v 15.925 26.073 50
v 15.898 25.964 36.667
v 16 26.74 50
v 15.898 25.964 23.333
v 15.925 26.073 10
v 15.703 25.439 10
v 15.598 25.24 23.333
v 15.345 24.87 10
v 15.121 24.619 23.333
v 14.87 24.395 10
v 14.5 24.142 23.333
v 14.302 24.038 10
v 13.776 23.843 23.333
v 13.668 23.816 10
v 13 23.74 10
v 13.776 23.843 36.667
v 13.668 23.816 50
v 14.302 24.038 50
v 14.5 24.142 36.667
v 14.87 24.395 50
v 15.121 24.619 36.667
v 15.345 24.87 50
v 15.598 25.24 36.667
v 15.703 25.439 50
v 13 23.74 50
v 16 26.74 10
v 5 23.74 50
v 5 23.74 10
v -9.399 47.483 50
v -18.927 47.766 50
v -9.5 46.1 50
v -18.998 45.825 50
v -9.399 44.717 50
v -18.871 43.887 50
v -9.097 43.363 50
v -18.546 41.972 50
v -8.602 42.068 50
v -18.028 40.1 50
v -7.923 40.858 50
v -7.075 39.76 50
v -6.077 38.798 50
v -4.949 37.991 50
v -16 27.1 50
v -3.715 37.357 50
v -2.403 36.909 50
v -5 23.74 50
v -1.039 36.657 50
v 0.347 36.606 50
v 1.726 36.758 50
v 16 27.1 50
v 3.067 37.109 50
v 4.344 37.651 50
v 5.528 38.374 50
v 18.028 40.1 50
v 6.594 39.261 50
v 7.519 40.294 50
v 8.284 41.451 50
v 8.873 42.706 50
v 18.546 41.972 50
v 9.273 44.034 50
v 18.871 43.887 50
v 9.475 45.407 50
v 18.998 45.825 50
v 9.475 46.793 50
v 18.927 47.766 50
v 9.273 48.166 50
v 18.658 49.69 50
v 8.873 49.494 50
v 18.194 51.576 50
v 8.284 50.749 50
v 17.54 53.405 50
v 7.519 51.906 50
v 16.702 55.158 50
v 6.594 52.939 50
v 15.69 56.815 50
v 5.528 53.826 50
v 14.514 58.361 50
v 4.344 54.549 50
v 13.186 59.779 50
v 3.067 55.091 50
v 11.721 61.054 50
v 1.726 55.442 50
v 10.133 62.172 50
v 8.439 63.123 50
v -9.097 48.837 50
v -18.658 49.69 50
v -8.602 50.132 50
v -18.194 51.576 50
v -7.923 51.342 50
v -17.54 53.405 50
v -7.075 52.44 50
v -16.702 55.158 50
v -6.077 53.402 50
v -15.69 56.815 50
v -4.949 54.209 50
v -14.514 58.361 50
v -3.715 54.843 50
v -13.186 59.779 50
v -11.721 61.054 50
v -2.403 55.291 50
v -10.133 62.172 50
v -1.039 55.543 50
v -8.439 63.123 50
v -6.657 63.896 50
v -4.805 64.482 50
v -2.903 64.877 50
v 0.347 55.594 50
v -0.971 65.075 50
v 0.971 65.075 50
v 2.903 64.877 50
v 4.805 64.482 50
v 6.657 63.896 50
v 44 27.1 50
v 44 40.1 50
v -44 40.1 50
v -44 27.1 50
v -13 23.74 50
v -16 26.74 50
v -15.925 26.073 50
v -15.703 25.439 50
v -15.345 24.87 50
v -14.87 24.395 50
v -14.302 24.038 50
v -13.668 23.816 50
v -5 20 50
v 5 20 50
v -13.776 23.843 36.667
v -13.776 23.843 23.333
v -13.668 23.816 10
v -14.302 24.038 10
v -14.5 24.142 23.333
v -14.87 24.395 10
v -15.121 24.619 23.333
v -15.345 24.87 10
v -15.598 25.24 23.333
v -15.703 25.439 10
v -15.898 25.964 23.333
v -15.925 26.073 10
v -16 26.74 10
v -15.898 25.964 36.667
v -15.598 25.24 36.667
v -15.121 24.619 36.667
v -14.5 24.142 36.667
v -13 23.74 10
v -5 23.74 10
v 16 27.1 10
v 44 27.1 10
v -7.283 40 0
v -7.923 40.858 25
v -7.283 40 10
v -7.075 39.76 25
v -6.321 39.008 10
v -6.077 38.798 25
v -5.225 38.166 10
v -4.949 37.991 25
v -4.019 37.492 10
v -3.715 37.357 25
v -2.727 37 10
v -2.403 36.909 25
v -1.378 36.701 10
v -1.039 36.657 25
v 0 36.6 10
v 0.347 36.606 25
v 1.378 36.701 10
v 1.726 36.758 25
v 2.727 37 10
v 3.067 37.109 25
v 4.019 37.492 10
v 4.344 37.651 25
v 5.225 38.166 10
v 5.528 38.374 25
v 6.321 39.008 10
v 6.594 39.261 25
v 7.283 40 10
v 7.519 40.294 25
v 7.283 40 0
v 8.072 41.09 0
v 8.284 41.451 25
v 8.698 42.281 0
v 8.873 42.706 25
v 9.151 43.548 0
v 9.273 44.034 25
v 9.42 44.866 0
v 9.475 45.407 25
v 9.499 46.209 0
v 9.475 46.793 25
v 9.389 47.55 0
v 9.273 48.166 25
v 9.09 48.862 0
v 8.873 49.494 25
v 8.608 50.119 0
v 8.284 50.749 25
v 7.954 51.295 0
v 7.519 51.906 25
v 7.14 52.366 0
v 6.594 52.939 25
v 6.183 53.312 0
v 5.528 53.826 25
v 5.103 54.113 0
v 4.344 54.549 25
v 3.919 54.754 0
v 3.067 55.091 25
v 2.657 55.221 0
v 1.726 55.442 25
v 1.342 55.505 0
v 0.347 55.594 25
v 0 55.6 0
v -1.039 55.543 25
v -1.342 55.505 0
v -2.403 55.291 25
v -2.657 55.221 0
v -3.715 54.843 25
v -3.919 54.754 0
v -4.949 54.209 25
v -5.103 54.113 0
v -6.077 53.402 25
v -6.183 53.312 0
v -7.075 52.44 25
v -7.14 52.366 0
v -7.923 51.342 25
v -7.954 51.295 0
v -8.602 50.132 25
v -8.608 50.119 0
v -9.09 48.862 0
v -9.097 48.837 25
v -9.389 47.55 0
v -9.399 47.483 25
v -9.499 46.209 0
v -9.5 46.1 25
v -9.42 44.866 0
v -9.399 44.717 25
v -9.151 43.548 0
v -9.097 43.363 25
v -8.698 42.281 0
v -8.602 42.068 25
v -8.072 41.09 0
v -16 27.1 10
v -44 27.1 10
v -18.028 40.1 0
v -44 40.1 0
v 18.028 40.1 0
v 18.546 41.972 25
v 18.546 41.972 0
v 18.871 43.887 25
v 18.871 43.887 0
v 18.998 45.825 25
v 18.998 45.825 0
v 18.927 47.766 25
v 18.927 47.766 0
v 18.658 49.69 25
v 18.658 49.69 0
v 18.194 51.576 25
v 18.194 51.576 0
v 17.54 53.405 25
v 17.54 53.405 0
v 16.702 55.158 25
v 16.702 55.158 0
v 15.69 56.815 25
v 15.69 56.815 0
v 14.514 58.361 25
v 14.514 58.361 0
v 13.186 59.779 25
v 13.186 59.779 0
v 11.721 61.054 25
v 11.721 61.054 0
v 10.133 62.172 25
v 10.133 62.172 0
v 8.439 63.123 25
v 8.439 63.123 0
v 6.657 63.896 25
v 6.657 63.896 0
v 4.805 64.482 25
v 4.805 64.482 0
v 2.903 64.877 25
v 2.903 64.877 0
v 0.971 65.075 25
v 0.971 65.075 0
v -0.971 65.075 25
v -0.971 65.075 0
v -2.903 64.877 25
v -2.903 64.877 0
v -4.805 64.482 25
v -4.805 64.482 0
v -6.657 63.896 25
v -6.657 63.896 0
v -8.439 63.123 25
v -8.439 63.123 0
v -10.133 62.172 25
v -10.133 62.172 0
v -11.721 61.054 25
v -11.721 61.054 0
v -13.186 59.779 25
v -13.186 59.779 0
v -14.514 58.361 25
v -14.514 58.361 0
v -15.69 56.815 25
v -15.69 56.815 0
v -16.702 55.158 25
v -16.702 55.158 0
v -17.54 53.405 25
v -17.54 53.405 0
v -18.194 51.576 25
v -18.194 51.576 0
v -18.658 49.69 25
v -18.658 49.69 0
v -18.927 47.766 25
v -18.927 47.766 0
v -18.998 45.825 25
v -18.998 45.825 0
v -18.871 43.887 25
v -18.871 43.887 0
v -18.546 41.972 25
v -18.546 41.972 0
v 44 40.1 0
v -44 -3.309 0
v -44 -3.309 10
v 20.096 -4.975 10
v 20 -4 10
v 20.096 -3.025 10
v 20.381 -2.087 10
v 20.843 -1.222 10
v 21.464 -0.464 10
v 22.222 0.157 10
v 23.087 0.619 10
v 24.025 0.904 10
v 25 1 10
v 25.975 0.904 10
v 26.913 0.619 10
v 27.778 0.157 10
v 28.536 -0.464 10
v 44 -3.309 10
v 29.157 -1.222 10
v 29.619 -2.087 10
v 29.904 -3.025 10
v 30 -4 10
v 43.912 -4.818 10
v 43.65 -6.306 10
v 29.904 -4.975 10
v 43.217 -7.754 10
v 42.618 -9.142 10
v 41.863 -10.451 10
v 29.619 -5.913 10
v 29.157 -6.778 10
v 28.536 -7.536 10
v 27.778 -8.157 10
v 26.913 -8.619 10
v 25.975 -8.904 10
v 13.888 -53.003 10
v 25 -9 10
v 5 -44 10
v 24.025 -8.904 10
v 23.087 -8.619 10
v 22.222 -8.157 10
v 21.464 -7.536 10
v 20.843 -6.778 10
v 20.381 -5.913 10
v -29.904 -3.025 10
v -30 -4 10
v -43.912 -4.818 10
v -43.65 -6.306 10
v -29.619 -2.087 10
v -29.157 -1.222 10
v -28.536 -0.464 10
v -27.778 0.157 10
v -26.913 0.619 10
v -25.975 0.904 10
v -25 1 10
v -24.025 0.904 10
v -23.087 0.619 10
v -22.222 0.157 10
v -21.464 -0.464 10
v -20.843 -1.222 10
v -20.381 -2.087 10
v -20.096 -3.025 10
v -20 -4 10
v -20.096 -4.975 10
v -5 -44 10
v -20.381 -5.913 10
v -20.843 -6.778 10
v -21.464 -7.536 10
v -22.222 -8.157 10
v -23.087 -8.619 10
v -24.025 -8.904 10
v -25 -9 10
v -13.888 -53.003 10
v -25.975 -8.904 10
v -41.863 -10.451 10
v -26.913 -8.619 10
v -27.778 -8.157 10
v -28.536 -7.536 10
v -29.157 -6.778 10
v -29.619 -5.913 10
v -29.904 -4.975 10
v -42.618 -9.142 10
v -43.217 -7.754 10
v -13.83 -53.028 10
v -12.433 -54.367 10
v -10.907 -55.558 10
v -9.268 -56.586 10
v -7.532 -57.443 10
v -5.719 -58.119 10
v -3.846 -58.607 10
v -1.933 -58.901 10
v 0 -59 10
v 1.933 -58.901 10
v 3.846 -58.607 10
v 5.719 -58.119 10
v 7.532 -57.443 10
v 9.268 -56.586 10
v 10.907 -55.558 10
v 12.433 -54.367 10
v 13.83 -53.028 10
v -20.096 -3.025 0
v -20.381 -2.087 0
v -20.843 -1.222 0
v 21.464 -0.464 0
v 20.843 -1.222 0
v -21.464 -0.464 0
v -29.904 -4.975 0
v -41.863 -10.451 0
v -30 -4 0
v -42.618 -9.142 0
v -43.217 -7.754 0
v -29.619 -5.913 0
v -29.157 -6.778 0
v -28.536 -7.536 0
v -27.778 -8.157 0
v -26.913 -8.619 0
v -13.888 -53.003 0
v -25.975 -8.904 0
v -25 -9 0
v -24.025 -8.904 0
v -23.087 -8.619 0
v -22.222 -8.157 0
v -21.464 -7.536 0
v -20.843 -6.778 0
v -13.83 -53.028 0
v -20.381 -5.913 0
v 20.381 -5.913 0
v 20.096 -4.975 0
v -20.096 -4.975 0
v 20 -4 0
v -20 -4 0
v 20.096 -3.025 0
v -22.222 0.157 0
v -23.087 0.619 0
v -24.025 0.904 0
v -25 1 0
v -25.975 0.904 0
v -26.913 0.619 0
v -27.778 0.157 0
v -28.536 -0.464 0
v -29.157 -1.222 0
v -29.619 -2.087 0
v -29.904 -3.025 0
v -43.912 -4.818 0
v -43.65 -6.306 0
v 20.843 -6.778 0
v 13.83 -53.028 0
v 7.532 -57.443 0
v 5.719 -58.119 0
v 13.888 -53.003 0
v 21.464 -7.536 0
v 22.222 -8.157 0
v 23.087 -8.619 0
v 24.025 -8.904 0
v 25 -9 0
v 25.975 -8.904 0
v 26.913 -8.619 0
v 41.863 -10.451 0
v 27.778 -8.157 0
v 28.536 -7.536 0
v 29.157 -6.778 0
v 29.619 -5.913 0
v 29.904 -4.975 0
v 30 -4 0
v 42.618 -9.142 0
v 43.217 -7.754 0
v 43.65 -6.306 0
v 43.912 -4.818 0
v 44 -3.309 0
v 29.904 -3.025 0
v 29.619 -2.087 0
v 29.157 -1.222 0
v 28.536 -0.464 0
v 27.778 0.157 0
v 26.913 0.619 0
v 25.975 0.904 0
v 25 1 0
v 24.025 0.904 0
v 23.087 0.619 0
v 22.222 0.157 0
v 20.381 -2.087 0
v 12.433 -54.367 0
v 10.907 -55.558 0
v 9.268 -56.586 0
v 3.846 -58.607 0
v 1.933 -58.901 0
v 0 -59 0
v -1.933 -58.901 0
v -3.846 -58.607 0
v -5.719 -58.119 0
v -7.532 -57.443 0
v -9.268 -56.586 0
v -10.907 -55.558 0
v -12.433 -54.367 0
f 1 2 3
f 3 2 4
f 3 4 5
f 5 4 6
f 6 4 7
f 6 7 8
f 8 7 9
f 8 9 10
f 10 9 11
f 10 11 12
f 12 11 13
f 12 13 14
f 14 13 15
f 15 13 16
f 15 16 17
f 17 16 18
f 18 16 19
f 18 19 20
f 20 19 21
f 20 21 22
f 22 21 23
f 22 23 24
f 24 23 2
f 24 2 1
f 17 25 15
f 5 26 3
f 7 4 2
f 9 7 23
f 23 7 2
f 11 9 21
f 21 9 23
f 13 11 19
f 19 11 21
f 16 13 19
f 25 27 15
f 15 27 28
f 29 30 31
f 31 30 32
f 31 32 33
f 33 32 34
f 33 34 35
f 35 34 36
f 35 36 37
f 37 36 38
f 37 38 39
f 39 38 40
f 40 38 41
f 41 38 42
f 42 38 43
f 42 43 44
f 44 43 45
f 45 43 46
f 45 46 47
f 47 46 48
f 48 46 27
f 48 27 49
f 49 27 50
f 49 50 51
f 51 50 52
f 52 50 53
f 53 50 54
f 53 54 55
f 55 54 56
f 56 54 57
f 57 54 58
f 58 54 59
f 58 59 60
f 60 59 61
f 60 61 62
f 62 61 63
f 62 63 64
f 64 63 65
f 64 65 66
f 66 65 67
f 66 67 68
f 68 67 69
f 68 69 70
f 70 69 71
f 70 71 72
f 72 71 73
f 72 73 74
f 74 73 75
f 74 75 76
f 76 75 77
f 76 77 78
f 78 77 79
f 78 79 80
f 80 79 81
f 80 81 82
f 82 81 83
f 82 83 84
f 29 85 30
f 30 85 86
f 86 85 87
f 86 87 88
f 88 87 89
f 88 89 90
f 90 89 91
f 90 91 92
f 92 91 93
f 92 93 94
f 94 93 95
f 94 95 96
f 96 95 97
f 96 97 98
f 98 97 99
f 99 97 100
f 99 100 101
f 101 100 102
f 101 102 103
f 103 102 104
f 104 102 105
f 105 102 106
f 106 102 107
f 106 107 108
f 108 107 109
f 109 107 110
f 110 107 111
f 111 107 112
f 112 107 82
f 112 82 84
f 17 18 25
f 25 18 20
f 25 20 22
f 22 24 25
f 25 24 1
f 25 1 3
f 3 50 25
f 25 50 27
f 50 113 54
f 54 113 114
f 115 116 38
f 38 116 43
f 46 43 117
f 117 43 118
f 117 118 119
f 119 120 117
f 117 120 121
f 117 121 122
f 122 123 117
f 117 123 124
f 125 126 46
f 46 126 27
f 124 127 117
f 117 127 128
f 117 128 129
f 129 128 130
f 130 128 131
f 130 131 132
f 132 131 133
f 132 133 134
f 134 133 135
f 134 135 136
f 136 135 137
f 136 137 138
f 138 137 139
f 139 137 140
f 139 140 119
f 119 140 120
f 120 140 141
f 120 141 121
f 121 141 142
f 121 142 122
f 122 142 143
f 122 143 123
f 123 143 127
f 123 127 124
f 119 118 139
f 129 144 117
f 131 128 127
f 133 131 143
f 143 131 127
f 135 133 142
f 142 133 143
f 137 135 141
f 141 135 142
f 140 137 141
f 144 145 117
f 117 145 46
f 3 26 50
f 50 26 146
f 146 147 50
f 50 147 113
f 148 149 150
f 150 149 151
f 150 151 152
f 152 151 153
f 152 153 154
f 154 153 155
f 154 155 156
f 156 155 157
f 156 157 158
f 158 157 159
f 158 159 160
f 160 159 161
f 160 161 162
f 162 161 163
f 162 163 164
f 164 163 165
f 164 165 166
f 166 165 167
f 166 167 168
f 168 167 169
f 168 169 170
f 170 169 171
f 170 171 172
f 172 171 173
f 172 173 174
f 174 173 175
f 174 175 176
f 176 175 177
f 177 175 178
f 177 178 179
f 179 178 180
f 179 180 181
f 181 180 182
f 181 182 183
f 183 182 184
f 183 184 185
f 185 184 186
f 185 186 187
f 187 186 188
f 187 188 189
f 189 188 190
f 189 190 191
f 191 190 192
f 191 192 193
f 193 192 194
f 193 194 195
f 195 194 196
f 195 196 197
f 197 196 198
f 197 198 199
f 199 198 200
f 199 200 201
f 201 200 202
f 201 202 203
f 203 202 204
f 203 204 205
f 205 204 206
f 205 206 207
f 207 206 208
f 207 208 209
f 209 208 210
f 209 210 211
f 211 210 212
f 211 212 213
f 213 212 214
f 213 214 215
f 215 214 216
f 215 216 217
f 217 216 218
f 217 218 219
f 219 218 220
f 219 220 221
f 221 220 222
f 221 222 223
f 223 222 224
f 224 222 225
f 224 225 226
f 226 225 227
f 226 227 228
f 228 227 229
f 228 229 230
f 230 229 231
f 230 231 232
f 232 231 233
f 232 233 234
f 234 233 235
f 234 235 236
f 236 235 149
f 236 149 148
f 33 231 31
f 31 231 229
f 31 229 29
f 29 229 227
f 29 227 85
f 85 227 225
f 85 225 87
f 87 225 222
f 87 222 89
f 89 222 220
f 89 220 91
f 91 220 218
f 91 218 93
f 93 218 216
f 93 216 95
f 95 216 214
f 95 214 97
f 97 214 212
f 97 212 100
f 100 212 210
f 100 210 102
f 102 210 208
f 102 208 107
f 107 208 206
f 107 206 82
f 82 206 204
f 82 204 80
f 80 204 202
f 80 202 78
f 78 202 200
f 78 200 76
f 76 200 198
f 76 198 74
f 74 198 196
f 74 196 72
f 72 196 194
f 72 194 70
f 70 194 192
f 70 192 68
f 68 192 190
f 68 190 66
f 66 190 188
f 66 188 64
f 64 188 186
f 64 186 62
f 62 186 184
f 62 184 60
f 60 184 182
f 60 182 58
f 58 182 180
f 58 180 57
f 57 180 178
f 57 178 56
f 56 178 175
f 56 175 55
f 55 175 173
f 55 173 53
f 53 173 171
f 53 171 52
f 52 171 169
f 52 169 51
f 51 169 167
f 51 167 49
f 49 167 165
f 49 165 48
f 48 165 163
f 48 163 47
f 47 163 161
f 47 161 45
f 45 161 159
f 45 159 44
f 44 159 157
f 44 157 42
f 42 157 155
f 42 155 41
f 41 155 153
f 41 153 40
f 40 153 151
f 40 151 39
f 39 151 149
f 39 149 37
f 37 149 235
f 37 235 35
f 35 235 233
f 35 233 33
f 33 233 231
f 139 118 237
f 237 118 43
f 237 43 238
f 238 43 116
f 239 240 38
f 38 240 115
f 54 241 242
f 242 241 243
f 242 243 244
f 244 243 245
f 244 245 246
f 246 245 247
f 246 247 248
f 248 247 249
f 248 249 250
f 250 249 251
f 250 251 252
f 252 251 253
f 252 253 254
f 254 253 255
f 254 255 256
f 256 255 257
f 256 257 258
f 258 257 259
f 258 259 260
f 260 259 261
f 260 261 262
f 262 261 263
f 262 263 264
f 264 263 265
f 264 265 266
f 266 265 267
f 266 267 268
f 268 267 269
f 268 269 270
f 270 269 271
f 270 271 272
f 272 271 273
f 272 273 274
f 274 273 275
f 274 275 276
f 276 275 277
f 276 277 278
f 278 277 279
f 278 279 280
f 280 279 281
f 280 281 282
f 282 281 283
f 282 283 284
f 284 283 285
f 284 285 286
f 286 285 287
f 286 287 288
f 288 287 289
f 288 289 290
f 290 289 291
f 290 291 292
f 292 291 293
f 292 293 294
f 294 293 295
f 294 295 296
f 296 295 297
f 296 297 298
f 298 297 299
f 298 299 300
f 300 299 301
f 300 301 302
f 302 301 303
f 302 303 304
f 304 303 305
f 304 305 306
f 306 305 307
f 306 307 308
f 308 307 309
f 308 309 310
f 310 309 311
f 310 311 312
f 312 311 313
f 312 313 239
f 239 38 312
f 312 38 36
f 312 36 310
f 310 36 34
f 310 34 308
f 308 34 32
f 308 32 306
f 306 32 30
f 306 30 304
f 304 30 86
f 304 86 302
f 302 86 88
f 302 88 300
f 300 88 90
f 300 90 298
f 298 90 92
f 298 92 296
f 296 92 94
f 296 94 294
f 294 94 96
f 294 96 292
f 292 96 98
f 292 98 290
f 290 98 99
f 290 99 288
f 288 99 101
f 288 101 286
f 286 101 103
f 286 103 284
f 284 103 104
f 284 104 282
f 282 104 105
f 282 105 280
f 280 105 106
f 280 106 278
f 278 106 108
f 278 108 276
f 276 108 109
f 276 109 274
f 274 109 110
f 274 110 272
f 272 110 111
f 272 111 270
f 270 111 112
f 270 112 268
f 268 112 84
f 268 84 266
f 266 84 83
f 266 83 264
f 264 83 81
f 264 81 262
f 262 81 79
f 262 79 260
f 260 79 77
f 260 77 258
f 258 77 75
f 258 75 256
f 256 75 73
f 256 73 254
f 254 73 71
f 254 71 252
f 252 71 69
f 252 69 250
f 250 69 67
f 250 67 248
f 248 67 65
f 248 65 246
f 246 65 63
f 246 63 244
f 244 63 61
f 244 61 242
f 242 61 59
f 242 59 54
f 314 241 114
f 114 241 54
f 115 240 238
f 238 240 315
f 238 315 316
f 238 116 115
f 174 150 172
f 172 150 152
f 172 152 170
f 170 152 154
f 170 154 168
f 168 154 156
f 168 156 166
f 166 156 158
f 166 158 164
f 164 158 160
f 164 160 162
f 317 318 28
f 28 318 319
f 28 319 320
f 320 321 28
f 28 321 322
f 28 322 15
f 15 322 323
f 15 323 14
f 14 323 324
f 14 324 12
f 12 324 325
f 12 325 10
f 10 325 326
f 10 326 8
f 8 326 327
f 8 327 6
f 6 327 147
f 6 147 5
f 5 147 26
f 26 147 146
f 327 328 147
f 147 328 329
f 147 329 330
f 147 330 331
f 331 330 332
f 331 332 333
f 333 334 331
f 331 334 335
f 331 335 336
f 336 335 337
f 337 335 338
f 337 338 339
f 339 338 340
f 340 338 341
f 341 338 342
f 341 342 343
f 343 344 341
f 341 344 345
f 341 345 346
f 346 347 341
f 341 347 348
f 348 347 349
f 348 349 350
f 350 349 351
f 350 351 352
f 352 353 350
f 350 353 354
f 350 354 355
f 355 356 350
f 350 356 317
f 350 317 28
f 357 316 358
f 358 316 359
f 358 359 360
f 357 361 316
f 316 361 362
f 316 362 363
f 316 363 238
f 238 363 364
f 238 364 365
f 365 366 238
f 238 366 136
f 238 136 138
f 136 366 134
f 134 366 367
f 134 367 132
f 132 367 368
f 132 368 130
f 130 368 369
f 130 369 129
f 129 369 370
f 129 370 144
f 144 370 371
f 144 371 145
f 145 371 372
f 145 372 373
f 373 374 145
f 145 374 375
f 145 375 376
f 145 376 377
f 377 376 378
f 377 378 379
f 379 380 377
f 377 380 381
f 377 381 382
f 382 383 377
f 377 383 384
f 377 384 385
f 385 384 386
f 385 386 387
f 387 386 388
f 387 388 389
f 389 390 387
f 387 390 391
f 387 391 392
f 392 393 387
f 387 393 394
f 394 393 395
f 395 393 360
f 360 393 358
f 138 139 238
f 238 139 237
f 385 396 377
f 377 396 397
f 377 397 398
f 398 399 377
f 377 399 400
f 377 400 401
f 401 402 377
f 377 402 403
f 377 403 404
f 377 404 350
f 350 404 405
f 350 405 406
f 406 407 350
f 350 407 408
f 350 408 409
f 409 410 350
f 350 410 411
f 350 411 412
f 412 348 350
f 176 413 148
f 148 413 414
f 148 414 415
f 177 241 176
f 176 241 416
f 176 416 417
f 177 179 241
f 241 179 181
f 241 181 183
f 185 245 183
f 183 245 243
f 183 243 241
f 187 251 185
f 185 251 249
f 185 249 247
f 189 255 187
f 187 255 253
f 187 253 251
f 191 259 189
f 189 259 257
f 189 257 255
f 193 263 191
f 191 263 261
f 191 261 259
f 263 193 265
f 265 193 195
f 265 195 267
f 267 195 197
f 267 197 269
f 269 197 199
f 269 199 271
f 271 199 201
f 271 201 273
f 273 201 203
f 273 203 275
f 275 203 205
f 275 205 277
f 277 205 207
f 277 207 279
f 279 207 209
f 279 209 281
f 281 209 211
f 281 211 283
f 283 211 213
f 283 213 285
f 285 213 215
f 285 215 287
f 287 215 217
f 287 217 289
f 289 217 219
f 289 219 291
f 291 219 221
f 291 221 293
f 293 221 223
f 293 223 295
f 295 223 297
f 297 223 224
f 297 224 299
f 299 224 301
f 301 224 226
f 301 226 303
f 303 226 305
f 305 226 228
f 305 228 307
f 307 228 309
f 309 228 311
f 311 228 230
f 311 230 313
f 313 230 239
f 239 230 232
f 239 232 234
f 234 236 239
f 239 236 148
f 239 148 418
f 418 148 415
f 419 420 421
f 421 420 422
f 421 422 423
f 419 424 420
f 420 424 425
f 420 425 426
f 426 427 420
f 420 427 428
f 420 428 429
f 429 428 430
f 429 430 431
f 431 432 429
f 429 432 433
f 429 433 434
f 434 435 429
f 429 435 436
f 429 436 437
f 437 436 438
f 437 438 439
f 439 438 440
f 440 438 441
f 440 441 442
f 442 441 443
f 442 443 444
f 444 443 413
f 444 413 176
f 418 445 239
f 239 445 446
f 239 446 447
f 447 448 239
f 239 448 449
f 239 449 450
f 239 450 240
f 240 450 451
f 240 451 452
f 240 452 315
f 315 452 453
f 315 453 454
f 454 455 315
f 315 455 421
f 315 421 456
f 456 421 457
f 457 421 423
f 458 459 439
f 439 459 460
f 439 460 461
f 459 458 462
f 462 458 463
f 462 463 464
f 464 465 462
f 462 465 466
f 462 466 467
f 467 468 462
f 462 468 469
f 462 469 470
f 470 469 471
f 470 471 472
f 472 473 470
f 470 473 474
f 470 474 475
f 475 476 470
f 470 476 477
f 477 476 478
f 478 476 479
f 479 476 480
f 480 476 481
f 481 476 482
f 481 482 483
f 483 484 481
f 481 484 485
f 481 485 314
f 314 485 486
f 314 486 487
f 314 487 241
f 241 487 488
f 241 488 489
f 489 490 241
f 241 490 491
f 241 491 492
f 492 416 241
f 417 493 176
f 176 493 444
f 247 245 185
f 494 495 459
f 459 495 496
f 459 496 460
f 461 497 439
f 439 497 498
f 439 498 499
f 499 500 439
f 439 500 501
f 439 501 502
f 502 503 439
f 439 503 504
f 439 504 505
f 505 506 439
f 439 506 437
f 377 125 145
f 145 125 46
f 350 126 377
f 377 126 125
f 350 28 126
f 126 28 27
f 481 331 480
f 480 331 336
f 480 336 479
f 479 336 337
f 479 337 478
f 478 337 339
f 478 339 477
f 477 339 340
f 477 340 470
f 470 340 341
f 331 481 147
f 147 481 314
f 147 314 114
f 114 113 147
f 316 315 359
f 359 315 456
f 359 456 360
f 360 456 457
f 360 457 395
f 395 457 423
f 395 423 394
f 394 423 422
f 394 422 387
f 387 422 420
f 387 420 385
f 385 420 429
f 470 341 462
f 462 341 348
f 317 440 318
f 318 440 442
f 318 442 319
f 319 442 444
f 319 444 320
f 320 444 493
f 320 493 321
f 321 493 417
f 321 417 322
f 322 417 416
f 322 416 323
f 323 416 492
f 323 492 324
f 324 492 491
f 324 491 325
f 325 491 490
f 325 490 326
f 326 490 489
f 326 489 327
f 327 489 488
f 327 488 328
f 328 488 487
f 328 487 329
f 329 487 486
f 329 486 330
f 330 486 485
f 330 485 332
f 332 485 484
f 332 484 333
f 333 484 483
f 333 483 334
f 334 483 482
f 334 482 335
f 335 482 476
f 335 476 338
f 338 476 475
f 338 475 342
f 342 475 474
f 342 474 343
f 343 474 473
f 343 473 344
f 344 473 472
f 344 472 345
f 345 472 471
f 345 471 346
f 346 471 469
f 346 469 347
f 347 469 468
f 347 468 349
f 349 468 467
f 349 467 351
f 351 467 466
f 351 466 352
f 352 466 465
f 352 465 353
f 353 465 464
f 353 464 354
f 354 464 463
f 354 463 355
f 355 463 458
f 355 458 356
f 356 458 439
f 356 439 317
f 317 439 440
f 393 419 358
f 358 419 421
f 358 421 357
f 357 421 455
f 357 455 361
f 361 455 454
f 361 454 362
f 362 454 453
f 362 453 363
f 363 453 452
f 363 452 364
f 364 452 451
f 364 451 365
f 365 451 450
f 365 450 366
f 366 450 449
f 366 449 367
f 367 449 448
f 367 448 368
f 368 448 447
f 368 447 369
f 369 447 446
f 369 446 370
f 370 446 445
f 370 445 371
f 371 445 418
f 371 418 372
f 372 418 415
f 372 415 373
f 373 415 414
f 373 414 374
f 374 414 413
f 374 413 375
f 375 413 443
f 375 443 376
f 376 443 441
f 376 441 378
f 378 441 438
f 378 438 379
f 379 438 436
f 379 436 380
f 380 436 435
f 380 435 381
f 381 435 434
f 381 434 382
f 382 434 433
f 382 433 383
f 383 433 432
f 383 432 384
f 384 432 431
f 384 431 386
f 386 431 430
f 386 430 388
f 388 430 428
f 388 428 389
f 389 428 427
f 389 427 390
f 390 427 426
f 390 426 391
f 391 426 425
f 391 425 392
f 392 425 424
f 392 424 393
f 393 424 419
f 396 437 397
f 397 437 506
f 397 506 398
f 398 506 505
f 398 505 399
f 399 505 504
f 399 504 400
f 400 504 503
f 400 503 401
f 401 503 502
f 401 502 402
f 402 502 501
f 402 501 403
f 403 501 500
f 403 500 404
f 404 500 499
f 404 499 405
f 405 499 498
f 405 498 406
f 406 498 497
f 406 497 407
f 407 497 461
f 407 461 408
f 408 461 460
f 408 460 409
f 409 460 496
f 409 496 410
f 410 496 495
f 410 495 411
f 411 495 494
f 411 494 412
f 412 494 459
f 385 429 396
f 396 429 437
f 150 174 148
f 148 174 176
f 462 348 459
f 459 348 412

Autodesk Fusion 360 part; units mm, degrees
sketch "Sketch1" plane through (0, 0, 0) normal (0, 0, 1) x (1, 0, 0)
  line L0 (44, 40) -> (-44, 40)
  line L1 (-44, 40) -> (-44, -40)
  line L2 (44, -40) -> (44, 40)
  circle A0 centre (25, -4) radius 5
  circle A1 centre (-25, -4) radius 5
  arc A2 (-13.8302, -53.0279) -> (13.8302, -53.0279) centre (0, -40) ccw
  line L3 (-44, -40) -> (-13.8302, -53.0279)
  line L4 (13.8302, -53.0279) -> (44, -40)
  dimension "d1" = 88
  dimension "d2" = 80
  dimension "d7" = 10
  dimension "d8" = 10
  dimension "d9" = 19
extrude "Extrude1" add sketch "Sketch1" along normal blind 10
chamfer "Chamfer1" distance 32.8 angle 45 2 edges at (-44, -40, 5) (44, -40, 5)
fillet "Fillet1" radius 13 2 edges at (-44, -7.2, 5) (44, -7.2, 5)
sketch "Sketch2" plane through (0, 0, 0) normal (1, 0, 0) x (0, 1, 0)
  line L0 (40, 10) -> (40, 0) construction
  line L1 (20, 10) -> (20, 50)
  line L2 (20, 10) -> (-44, 10)
  line L3 (20, 50) -> (-44, 10)
  dimension "d15" = 20
  dimension "d16" = 64
  dimension "d17" = 40
extrude "Extrude2" add sketch "Sketch2" along normal mid plane 10
sketch "Sketch3" plane through (0, 0, 0) normal (0, 0, 1) x (1, 0, 0)
  line L0 (-44, 40.1) -> (-44, 27.1)
  line L1 (44, 27.1) -> (44, 40.1)
  circle A0 centre (0, 46.1) radius 9.5
  line L2 (5, 23.7404) -> (16, 23.7404)
  line L3 (16, 23.7404) -> (5, 23.7404)
  line L4 (-5, 23.7404) -> (-16, 23.7404)
  line L5 (-16, 23.7404) -> (-16, 27.1)
  line L6 (16, 23.7404) -> (16, 27.1)
  line L7 (5, 20) -> (5, 23.7404)
  line L8 (-5, 20) -> (-5, 23.7404)
  arc A1 (18.0278, 40.1) -> (-18.0278, 40.1) centre (0, 46.1) ccw
  line L9 (-5, 20) -> (5, 20)
  line L10 (44, 40.1) -> (18.0278, 40.1)
  line L11 (-18.0278, 40.1) -> (-44, 40.1)
  line L12 (-44, 27.1) -> (-16, 27.1)
  line L13 (16, 27.1) -> (44, 27.1)
  dimension "d20" = 13
  dimension "d22" = 19
  dimension "d23" = 19
extrude "Extrude3" add sketch "Sketch3" along normal blind 50
fillet "Fillet2" radius 3 2 edges at (-16, 23.7404, 30) (16, 23.7404, 30)
equation "d2 = 67 mm + 13 mm"
